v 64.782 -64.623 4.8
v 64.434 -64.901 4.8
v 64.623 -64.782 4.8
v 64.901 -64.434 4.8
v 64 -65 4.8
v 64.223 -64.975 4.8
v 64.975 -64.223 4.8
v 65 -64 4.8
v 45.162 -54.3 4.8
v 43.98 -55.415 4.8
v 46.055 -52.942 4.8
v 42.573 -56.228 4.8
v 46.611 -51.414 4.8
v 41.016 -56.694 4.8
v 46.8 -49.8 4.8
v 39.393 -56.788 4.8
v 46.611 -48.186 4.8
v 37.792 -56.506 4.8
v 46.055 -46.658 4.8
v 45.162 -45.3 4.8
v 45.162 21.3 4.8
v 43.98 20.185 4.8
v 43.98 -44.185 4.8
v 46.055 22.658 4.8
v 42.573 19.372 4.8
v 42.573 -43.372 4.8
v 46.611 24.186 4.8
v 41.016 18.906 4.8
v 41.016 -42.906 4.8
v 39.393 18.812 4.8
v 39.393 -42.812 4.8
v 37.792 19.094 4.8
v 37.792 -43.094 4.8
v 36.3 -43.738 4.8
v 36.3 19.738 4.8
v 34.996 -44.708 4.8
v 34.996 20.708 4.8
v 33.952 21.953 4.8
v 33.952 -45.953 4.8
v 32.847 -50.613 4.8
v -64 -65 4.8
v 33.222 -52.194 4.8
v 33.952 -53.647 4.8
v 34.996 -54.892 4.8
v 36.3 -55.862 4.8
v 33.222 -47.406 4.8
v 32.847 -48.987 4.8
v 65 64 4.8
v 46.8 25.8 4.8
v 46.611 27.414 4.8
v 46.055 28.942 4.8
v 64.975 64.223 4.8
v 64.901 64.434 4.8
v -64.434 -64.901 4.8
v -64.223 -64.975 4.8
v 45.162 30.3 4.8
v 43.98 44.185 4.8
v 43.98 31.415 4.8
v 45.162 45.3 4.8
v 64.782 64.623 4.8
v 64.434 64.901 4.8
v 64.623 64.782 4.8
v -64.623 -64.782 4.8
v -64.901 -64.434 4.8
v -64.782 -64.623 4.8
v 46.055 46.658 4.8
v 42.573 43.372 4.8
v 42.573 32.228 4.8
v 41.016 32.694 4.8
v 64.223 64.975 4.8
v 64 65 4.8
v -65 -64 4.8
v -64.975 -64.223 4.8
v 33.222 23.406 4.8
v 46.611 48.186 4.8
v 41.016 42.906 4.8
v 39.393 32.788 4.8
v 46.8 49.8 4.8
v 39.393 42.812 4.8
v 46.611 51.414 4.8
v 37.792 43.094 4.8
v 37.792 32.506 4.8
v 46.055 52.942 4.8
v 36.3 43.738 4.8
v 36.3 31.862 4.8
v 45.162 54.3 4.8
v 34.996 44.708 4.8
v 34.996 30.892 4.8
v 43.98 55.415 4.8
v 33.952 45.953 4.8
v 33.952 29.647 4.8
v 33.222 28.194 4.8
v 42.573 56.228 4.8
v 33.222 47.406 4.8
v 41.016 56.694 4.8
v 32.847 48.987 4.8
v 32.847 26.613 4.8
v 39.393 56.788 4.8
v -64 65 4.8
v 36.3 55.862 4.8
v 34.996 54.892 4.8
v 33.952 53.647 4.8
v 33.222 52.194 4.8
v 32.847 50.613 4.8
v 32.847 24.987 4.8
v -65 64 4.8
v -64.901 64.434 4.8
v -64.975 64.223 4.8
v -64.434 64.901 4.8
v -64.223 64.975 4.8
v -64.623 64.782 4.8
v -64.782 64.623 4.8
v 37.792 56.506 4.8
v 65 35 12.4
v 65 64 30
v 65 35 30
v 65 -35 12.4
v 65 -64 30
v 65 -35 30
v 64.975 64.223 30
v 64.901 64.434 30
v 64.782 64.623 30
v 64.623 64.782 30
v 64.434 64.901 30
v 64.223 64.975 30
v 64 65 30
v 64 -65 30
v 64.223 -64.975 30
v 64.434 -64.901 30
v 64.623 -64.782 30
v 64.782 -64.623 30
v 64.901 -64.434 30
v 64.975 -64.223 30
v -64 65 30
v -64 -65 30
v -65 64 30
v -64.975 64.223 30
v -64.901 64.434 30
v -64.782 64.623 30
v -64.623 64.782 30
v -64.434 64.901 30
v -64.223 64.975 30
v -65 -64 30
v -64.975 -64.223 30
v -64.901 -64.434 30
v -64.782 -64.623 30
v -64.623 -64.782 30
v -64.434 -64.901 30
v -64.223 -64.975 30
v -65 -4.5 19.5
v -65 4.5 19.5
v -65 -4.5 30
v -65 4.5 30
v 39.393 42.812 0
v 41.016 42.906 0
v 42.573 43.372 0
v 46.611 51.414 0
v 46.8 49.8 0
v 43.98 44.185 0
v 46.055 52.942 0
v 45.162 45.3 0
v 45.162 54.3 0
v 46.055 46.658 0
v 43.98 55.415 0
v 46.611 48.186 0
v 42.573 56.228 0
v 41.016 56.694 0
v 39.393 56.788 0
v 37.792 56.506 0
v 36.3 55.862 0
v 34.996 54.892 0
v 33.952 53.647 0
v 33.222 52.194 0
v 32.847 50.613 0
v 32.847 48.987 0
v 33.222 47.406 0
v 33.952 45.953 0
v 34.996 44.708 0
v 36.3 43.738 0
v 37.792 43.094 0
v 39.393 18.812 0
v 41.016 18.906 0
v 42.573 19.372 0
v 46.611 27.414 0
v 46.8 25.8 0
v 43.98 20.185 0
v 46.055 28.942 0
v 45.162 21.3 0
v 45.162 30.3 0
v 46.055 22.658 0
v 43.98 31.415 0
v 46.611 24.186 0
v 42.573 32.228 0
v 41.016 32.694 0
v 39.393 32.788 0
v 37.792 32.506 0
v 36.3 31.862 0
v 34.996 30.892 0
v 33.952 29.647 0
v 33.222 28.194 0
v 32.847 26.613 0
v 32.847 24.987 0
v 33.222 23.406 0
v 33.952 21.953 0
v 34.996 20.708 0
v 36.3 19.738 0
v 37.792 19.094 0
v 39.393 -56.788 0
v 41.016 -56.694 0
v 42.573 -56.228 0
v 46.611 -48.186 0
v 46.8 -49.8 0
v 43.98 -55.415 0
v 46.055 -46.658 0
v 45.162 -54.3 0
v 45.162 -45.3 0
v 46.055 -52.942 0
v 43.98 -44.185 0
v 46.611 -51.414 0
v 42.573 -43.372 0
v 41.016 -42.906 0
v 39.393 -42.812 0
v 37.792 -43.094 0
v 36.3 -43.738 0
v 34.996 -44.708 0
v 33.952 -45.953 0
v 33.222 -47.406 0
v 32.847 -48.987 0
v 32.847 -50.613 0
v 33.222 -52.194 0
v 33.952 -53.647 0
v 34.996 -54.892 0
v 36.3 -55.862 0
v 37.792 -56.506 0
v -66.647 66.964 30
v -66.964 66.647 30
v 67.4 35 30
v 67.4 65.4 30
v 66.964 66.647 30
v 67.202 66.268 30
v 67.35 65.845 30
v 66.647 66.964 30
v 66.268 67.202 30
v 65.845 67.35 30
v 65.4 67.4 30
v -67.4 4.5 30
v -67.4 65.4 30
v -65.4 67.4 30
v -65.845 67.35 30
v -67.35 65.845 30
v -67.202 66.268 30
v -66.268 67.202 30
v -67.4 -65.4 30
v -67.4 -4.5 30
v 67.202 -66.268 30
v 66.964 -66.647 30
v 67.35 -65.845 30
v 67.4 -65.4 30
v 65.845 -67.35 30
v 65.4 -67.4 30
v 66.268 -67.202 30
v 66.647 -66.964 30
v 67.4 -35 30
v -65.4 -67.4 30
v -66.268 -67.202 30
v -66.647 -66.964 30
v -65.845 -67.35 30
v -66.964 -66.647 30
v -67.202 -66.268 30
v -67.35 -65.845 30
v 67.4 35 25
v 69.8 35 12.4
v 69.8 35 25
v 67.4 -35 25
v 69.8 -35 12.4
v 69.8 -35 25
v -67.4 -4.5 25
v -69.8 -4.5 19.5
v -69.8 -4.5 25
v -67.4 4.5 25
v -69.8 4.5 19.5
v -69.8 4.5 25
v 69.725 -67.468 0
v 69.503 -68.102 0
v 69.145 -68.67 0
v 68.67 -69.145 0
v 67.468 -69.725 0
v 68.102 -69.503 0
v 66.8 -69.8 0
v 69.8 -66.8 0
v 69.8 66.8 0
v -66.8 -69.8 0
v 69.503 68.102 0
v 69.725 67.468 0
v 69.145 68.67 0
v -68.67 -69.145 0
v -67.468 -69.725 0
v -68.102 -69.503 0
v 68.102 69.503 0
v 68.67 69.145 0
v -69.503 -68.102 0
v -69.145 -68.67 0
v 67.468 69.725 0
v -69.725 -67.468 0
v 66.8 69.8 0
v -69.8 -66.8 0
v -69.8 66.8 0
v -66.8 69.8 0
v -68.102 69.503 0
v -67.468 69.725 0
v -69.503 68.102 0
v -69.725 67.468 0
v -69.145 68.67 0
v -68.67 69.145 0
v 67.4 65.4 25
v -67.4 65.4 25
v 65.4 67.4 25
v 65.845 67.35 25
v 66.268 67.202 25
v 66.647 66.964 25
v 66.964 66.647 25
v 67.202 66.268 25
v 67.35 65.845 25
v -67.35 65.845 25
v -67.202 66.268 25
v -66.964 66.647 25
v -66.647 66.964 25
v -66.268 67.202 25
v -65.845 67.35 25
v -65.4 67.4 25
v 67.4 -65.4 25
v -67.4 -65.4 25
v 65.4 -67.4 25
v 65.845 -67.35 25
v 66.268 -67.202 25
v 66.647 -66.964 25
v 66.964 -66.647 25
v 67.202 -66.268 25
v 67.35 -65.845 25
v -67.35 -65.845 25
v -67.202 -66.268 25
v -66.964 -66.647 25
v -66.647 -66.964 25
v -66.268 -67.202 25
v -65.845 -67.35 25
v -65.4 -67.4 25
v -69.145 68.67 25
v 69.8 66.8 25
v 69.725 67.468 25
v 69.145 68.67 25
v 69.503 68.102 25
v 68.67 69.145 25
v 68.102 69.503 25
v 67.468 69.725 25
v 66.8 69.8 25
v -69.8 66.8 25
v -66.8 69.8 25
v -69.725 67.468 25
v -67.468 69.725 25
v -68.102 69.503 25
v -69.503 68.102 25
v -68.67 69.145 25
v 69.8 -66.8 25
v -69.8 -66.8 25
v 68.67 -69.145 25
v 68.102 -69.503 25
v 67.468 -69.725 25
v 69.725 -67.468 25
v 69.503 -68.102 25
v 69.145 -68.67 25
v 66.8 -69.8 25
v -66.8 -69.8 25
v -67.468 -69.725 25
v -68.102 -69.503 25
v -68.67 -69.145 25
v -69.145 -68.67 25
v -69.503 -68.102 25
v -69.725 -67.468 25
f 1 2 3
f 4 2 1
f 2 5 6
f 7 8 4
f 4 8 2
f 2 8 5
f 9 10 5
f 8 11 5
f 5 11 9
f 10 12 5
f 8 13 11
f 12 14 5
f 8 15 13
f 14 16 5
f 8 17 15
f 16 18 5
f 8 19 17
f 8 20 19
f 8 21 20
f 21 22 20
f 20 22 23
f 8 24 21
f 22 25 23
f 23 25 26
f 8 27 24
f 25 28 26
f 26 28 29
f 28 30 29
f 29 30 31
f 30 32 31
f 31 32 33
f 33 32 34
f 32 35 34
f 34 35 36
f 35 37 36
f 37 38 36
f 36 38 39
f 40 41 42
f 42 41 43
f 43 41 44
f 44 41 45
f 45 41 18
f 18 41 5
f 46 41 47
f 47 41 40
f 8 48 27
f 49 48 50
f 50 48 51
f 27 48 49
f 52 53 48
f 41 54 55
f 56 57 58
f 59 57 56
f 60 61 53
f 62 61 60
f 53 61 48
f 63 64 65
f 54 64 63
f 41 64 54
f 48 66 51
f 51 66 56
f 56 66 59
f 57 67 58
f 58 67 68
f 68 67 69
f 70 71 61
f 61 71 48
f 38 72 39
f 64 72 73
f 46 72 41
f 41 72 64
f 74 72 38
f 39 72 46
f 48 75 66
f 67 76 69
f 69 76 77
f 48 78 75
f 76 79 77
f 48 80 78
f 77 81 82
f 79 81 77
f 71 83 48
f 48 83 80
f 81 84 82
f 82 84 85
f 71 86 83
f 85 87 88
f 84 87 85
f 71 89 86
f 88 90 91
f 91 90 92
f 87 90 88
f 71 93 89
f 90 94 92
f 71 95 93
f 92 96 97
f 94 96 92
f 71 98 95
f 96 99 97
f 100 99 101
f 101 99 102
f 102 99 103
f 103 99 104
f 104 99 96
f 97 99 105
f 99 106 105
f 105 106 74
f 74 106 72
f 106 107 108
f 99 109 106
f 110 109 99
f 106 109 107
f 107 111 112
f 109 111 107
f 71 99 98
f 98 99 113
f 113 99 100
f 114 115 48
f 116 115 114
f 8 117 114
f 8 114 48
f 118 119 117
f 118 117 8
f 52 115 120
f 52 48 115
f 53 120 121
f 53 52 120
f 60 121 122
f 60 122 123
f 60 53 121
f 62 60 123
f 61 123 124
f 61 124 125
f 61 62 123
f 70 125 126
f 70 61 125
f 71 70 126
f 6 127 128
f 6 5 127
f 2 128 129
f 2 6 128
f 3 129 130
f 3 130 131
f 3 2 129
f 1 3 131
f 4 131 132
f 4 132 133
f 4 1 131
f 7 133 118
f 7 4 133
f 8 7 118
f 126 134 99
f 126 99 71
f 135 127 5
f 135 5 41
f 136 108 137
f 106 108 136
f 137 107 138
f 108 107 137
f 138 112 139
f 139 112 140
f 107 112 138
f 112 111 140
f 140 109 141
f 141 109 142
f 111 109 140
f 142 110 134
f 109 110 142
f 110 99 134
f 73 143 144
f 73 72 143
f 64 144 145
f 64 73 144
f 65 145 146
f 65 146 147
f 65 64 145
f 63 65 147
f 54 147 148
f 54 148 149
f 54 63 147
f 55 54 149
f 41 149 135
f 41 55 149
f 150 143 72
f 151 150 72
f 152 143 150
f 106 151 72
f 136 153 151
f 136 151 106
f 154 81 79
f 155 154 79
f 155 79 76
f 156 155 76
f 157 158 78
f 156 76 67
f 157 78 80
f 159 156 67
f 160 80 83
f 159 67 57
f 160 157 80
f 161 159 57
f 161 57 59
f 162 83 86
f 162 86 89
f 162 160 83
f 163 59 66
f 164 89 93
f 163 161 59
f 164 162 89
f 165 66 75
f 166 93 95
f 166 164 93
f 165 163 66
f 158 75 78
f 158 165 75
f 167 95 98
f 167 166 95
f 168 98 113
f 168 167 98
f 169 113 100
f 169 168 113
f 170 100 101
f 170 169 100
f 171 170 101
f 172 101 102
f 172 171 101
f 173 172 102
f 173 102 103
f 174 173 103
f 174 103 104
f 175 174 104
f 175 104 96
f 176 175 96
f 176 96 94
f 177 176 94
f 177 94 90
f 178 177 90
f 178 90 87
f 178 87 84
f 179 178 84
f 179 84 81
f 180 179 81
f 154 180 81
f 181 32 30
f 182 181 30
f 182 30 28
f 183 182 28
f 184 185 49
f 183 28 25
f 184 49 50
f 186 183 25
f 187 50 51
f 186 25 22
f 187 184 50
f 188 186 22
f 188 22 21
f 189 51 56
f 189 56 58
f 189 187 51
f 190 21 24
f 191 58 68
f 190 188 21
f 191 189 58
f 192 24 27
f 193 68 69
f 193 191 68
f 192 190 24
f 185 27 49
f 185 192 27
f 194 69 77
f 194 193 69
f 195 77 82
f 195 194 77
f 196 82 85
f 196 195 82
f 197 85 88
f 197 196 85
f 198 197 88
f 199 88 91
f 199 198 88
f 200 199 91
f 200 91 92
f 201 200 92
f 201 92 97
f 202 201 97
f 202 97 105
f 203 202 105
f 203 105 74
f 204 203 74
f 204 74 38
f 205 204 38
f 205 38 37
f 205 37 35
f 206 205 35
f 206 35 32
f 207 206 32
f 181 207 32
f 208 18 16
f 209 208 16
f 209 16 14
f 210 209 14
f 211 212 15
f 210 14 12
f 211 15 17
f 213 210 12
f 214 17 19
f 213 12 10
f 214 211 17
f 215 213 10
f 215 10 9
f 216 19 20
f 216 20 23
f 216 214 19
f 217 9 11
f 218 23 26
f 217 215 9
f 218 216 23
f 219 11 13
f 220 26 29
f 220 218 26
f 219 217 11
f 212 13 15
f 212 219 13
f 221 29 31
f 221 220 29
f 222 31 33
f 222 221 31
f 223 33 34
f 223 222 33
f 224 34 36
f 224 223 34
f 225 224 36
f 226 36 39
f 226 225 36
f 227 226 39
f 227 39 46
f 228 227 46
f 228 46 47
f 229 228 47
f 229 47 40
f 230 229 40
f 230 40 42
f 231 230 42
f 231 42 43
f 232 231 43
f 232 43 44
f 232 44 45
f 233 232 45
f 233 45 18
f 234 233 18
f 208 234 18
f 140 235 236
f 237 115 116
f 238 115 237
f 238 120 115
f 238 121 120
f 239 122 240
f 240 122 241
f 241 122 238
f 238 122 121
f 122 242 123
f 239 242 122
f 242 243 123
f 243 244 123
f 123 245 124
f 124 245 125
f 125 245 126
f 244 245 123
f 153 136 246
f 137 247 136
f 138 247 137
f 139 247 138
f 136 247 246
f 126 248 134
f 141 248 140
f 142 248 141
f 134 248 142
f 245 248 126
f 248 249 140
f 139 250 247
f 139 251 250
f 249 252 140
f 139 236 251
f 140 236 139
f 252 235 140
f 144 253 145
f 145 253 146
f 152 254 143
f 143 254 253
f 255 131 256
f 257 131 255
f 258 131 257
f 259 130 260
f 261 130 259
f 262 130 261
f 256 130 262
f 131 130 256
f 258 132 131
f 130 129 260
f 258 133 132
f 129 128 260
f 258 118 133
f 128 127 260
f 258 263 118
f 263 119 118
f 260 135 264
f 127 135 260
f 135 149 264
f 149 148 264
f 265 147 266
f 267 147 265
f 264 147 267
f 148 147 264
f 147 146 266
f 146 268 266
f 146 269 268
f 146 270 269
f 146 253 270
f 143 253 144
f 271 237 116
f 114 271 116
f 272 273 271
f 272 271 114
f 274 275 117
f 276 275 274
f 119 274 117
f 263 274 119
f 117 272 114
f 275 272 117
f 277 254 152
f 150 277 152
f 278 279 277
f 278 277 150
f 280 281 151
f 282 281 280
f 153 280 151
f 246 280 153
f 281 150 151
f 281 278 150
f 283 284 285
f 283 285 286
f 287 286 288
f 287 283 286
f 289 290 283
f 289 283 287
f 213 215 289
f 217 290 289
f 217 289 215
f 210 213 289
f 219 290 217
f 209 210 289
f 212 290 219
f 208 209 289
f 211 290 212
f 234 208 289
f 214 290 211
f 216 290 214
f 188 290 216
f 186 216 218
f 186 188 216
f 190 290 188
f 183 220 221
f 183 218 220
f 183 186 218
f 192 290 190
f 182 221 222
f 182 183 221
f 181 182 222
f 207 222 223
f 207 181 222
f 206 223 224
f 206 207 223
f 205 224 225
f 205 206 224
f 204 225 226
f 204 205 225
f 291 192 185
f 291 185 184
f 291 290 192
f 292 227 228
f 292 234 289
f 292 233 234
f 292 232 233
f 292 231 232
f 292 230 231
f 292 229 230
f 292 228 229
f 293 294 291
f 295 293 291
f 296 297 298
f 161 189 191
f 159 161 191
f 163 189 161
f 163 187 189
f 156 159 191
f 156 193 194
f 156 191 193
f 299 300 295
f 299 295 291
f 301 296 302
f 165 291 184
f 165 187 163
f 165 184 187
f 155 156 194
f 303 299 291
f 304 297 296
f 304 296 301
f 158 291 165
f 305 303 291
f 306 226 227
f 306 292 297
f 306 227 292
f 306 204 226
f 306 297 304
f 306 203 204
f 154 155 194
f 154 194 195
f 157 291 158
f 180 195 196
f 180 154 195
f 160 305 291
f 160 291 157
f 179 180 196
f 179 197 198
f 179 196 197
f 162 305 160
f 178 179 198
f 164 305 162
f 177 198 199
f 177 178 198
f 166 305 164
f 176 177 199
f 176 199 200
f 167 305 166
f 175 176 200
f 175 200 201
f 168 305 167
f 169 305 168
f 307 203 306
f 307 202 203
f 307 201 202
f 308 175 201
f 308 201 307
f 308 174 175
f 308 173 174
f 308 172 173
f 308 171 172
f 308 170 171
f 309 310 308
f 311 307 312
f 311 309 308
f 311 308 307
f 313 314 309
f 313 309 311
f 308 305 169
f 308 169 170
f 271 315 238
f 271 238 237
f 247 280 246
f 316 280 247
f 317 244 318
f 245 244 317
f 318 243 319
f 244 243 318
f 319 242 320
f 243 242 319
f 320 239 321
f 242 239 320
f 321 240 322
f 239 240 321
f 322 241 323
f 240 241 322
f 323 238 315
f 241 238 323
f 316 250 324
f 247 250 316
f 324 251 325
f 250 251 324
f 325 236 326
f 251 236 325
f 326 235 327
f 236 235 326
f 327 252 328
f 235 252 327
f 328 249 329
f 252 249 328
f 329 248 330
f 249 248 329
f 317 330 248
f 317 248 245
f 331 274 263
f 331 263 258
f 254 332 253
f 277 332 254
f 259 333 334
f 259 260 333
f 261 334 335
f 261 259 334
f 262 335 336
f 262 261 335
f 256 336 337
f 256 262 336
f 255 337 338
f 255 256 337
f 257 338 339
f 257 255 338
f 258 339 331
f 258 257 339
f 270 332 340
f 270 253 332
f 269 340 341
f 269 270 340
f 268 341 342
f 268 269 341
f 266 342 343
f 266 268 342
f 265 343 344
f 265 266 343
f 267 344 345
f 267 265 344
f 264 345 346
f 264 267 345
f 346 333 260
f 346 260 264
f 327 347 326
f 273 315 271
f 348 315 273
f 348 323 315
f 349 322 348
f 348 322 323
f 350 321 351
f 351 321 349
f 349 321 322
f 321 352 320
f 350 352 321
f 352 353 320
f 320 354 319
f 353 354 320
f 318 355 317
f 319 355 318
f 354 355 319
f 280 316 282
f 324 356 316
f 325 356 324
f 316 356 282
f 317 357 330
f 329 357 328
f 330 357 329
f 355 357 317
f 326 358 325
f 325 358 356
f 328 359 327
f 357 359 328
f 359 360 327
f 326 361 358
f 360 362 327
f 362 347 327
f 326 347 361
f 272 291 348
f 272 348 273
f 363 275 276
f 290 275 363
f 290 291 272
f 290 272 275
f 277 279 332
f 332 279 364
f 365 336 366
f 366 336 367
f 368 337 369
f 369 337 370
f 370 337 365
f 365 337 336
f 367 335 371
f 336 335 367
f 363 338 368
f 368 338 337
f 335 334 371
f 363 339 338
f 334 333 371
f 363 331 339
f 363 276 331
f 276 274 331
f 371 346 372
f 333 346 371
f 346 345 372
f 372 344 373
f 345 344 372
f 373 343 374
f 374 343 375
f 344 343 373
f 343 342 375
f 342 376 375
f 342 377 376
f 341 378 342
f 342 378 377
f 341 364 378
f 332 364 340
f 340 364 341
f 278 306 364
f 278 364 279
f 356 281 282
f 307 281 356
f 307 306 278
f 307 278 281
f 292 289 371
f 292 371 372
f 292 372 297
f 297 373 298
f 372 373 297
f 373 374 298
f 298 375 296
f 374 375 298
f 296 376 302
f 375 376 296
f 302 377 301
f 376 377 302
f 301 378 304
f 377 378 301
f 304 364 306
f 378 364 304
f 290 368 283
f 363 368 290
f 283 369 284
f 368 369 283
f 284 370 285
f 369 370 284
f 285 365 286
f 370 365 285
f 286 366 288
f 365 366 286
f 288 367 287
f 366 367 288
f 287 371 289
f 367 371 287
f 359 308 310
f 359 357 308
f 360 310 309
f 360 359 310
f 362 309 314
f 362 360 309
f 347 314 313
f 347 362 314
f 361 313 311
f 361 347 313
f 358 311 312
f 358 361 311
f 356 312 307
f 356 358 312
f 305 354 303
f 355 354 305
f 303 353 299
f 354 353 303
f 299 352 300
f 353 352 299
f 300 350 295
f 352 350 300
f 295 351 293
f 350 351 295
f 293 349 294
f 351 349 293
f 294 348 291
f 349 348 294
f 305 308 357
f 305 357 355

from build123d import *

# Parameters (mm, degrees)
SKETCH001_W     = 139.6
SKETCH001_H     = 139.6
PAD_DEPTH       = 25
SKETCH003_W     = 134.8
SKETCH003_H     = 134.8
PAD001_DEPTH    = 5
SKETCH002_W     = 130
SKETCH002_H     = 130
POCKET_DEPTH    = 25.2
SKETCH005_W     = 70
SKETCH005_H     = 17.6
POCKET001_DEPTH = 5
SKETCH006_W     = 9
SKETCH006_H     = 10.5
POCKET002_DEPTH = 5
SKETCH007_R     = 7
HOLE_DEPTH      = 25
FILLET_R        = 3
FILLET001_R     = 3
FILLET002_R     = 3
FILLET003_R     = 3
FILLET004_R     = 2
FILLET005_R     = 2
FILLET006_R     = 2
FILLET007_R     = 2
FILLET008_R     = 1
FILLET009_R     = 1
FILLET010_R     = 1
FILLET011_R     = 1


with BuildPart() as part:
    # Sketch001 → Pad (new body)
    with BuildSketch(Plane.XY):
        Rectangle(SKETCH001_W, SKETCH001_H)
    extrude(amount=PAD_DEPTH)

    # Sketch003 (on Face6 of Pad) → Pad001 (join)
    with BuildSketch(Plane.XY.offset(25)):
        Rectangle(SKETCH003_W, SKETCH003_H)
    extrude(amount=PAD001_DEPTH)

    # Sketch002 (on Face11 of Pad001) → Pocket (cut)
    with BuildSketch(Plane.XY.offset(30)):
        Rectangle(SKETCH002_W, SKETCH002_H)
    extrude(amount=-POCKET_DEPTH, mode=Mode.SUBTRACT)

    # Sketch005 (on Face3 of Pocket) → Pocket001 (cut)
    with BuildSketch(Plane.YZ.offset(69.8)):
        with Locations((0, 21.2)):
            Rectangle(SKETCH005_W, SKETCH005_H)
    extrude(amount=-POCKET001_DEPTH, mode=Mode.SUBTRACT)

    # Sketch006 (on Face2 of Pocket001) → Pocket002 (cut)
    with BuildSketch(Plane(origin=(-69.8, 0, 0), x_dir=(0, -1, 0), z_dir=(-1, 0, 0))):
        with Locations((0, 24.75)):
            Rectangle(SKETCH006_W, SKETCH006_H)
    extrude(amount=-POCKET002_DEPTH, mode=Mode.SUBTRACT)

    # Sketch007 (on Face25 of Pocket002) → Hole (cut)
    with BuildSketch(Plane.XY.offset(4.8)):
        with Locations((39.8, 49.8)):
            Circle(SKETCH007_R)
        with Locations((39.8, 25.8)):
            Circle(SKETCH007_R)
        with Locations((39.8, -49.8)):
            Circle(SKETCH007_R)
    extrude(amount=-HOLE_DEPTH, mode=Mode.SUBTRACT)

    # Fillet
    fillet_edges = [part.edges().sort_by_distance(p)[0] for p in [
        (-69.8, 69.8, 12.5),
    ]]
    fillet(fillet_edges, radius=FILLET_R)

    # Fillet001
    fillet001_edges = [part.edges().sort_by_distance(p)[0] for p in [
        (69.8, 69.8, 12.5),
    ]]
    fillet(fillet001_edges, radius=FILLET001_R)

    # Fillet002
    fillet002_edges = [part.edges().sort_by_distance(p)[0] for p in [
        (69.8, -69.8, 12.5),
    ]]
    fillet(fillet002_edges, radius=FILLET002_R)

    # Fillet003
    fillet003_edges = [part.edges().sort_by_distance(p)[0] for p in [
        (-69.8, -69.8, 12.5),
    ]]
    fillet(fillet003_edges, radius=FILLET003_R)

    # Fillet004
    fillet004_edges = [part.edges().sort_by_distance(p)[0] for p in [
        (-67.4, -67.4, 27.5),
    ]]
    fillet(fillet004_edges, radius=FILLET004_R)

    # Fillet005
    fillet005_edges = [part.edges().sort_by_distance(p)[0] for p in [
        (-67.4, 67.4, 27.5),
    ]]
    fillet(fillet005_edges, radius=FILLET005_R)

    # Fillet006
    fillet006_edges = [part.edges().sort_by_distance(p)[0] for p in [
        (67.4, 67.4, 27.5),
    ]]
    fillet(fillet006_edges, radius=FILLET006_R)

    # Fillet007
    fillet007_edges = [part.edges().sort_by_distance(p)[0] for p in [
        (67.4, -67.4, 27.5),
    ]]
    fillet(fillet007_edges, radius=FILLET007_R)

    # Fillet008
    fillet008_edges = [part.edges().sort_by_distance(p)[0] for p in [
        (-65, 65, 17.4),
    ]]
    fillet(fillet008_edges, radius=FILLET008_R)

    # Fillet009
    fillet009_edges = [part.edges().sort_by_distance(p)[0] for p in [
        (-65, -65, 17.4),
    ]]
    fillet(fillet009_edges, radius=FILLET009_R)

    # Fillet010
    fillet010_edges = [part.edges().sort_by_distance(p)[0] for p in [
        (65, -65, 17.4),
    ]]
    fillet(fillet010_edges, radius=FILLET010_R)

    # Fillet011
    fillet011_edges = [part.edges().sort_by_distance(p)[0] for p in [
        (65, 65, 17.4),
    ]]
    fillet(fillet011_edges, radius=FILLET011_R)


solid = part.part
